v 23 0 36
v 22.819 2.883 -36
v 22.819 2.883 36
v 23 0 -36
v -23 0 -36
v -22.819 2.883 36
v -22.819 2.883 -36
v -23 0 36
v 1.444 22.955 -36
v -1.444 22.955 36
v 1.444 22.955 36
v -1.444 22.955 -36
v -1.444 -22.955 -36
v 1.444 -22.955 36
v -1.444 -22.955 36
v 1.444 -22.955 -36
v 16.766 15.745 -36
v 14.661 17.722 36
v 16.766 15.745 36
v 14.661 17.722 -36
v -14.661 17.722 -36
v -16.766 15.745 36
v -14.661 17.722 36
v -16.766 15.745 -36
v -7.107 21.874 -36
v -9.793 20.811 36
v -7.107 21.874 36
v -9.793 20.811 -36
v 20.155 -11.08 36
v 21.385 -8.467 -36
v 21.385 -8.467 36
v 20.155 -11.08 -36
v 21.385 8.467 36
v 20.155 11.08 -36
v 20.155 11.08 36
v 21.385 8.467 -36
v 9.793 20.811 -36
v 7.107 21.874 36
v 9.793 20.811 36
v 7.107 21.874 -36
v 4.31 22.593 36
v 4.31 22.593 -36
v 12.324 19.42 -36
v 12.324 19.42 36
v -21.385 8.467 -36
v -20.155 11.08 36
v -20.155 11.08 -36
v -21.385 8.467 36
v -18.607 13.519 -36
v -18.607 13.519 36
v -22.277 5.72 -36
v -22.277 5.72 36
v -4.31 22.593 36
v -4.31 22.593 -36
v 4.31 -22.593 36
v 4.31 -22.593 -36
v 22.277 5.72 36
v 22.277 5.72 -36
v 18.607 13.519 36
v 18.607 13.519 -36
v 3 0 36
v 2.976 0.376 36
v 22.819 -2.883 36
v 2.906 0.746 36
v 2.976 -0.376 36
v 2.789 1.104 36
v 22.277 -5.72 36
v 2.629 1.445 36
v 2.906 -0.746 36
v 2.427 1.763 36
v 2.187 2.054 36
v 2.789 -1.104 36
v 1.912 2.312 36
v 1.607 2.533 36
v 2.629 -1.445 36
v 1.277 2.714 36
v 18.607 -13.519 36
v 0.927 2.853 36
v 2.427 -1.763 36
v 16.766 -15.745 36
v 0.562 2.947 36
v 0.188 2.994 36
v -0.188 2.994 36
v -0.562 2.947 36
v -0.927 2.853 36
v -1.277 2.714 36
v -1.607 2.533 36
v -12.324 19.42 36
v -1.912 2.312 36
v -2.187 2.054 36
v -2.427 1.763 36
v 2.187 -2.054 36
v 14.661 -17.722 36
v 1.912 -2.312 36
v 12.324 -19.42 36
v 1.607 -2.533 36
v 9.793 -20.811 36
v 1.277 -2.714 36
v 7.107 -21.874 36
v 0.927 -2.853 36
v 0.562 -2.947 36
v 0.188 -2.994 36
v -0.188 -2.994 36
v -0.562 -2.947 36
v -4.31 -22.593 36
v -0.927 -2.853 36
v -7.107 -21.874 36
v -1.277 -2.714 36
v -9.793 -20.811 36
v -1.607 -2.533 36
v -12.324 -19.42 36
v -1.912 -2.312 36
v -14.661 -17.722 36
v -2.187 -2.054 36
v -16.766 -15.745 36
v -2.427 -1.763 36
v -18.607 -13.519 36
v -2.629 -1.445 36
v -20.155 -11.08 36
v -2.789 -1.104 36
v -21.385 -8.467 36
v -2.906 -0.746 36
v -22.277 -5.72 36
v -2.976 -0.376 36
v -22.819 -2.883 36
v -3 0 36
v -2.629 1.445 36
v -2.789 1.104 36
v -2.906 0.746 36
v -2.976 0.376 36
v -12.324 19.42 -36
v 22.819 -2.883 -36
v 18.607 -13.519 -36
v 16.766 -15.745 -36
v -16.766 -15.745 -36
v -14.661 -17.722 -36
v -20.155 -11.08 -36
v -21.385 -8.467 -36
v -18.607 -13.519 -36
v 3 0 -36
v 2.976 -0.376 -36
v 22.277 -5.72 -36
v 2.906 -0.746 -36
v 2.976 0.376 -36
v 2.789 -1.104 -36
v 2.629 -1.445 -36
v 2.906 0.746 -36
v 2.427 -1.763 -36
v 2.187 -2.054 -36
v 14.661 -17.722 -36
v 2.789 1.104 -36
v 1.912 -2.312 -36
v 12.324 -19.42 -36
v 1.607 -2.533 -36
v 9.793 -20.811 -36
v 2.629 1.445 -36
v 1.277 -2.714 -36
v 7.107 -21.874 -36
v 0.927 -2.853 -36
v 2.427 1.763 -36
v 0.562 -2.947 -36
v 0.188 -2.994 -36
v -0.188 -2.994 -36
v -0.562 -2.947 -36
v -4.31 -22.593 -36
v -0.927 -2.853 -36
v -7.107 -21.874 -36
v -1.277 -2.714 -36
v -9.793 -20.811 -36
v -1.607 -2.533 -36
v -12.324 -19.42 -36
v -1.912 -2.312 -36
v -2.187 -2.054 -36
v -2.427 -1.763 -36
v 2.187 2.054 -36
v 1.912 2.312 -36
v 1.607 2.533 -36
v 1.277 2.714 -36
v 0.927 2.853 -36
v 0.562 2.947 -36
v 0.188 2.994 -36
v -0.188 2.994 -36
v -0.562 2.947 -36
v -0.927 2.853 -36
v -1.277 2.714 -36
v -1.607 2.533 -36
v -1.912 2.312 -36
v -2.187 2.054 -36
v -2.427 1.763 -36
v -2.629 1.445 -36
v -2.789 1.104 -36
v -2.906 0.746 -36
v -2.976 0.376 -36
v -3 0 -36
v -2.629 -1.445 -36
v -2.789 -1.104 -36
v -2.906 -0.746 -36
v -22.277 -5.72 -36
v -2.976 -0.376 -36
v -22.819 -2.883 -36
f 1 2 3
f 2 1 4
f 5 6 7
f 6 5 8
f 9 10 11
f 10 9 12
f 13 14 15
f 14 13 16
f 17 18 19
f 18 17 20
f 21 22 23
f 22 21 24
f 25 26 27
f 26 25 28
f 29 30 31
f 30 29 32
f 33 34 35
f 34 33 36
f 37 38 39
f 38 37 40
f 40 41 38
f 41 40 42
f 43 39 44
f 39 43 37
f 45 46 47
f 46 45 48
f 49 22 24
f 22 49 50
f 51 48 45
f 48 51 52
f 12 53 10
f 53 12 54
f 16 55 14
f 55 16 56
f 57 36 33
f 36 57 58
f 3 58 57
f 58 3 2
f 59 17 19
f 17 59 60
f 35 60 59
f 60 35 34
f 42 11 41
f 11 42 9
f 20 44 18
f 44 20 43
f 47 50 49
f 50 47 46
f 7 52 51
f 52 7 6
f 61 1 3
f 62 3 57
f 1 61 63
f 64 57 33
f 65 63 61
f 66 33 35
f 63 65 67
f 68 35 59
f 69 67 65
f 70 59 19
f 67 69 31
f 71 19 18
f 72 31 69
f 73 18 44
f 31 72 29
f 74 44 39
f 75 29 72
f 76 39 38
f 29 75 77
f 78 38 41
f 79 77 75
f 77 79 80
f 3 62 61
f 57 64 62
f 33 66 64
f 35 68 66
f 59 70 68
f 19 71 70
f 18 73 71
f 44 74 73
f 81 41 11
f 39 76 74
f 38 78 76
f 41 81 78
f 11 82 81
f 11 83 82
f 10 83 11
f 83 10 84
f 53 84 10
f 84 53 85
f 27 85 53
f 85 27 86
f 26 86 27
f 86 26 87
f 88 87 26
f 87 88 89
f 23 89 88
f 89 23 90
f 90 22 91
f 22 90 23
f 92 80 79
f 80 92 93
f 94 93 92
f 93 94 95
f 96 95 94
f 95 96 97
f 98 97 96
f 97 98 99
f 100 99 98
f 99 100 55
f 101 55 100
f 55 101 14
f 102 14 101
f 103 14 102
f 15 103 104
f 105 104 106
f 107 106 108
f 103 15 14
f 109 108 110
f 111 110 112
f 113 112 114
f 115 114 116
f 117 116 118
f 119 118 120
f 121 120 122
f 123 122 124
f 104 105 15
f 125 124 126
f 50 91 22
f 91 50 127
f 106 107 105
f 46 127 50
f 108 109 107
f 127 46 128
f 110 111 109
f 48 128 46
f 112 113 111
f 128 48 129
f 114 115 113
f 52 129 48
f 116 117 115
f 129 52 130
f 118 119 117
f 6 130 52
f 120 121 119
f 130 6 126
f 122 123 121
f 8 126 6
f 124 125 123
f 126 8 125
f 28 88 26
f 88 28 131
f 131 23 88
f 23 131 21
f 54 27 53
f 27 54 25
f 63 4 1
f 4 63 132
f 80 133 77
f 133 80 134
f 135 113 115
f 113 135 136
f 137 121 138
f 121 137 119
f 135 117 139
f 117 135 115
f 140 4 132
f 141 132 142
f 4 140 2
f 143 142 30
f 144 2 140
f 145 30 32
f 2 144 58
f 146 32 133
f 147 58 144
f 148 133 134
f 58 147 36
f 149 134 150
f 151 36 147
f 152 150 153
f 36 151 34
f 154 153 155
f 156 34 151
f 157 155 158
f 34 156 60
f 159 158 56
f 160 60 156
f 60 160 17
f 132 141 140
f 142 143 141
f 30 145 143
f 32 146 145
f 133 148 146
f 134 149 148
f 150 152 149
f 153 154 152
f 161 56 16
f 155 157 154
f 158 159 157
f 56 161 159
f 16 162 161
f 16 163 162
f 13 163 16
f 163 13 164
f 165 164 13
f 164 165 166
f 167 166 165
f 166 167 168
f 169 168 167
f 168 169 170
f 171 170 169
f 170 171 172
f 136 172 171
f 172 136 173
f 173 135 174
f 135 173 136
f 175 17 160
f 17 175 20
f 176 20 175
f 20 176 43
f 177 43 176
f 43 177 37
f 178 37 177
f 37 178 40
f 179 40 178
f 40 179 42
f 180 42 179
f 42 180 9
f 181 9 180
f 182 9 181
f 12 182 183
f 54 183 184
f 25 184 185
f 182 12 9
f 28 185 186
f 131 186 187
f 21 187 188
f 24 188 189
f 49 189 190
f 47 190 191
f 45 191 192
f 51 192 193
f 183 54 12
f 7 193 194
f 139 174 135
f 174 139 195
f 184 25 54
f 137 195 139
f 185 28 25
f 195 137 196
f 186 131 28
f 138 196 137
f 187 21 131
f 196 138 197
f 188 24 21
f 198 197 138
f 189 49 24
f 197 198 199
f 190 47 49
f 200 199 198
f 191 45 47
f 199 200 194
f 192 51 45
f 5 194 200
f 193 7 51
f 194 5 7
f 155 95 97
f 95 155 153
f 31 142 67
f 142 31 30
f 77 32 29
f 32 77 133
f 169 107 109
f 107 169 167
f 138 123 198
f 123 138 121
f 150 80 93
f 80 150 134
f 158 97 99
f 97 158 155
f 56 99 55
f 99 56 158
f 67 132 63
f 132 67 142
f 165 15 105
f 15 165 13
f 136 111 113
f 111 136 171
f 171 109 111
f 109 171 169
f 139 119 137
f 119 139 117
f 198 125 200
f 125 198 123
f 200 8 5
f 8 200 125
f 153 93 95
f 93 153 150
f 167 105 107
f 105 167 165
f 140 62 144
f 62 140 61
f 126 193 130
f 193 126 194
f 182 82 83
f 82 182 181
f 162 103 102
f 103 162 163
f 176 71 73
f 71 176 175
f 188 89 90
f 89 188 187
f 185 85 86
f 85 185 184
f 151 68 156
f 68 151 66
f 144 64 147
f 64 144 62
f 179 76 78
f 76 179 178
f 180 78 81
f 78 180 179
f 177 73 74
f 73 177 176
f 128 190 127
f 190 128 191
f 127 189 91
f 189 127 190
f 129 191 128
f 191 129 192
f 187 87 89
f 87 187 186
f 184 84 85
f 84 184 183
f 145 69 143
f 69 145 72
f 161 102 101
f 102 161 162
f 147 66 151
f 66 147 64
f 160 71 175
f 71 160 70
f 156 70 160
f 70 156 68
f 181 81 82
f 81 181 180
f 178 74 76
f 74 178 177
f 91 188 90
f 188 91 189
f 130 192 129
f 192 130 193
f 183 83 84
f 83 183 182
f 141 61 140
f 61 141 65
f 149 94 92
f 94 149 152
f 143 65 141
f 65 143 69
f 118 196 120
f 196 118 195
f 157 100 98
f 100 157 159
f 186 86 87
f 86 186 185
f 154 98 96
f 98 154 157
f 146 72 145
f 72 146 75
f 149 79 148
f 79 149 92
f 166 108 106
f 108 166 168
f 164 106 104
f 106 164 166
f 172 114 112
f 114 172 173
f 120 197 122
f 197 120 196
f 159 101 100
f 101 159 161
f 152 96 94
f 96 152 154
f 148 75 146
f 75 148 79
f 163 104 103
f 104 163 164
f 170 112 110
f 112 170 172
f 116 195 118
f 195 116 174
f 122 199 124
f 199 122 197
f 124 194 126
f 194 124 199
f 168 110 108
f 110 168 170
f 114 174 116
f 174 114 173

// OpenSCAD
$fn = 50;


difference() {
	union() {
		translate(v = [0, 0, -36.0000000000]) {
			cylinder(h = 72, r = 23.0000000000);
		}
	}
	union() {
		translate(v = [0, 0, -100.0000000000]) {
			cylinder(h = 200, r = 3.0000000000);
		}
	}
}
